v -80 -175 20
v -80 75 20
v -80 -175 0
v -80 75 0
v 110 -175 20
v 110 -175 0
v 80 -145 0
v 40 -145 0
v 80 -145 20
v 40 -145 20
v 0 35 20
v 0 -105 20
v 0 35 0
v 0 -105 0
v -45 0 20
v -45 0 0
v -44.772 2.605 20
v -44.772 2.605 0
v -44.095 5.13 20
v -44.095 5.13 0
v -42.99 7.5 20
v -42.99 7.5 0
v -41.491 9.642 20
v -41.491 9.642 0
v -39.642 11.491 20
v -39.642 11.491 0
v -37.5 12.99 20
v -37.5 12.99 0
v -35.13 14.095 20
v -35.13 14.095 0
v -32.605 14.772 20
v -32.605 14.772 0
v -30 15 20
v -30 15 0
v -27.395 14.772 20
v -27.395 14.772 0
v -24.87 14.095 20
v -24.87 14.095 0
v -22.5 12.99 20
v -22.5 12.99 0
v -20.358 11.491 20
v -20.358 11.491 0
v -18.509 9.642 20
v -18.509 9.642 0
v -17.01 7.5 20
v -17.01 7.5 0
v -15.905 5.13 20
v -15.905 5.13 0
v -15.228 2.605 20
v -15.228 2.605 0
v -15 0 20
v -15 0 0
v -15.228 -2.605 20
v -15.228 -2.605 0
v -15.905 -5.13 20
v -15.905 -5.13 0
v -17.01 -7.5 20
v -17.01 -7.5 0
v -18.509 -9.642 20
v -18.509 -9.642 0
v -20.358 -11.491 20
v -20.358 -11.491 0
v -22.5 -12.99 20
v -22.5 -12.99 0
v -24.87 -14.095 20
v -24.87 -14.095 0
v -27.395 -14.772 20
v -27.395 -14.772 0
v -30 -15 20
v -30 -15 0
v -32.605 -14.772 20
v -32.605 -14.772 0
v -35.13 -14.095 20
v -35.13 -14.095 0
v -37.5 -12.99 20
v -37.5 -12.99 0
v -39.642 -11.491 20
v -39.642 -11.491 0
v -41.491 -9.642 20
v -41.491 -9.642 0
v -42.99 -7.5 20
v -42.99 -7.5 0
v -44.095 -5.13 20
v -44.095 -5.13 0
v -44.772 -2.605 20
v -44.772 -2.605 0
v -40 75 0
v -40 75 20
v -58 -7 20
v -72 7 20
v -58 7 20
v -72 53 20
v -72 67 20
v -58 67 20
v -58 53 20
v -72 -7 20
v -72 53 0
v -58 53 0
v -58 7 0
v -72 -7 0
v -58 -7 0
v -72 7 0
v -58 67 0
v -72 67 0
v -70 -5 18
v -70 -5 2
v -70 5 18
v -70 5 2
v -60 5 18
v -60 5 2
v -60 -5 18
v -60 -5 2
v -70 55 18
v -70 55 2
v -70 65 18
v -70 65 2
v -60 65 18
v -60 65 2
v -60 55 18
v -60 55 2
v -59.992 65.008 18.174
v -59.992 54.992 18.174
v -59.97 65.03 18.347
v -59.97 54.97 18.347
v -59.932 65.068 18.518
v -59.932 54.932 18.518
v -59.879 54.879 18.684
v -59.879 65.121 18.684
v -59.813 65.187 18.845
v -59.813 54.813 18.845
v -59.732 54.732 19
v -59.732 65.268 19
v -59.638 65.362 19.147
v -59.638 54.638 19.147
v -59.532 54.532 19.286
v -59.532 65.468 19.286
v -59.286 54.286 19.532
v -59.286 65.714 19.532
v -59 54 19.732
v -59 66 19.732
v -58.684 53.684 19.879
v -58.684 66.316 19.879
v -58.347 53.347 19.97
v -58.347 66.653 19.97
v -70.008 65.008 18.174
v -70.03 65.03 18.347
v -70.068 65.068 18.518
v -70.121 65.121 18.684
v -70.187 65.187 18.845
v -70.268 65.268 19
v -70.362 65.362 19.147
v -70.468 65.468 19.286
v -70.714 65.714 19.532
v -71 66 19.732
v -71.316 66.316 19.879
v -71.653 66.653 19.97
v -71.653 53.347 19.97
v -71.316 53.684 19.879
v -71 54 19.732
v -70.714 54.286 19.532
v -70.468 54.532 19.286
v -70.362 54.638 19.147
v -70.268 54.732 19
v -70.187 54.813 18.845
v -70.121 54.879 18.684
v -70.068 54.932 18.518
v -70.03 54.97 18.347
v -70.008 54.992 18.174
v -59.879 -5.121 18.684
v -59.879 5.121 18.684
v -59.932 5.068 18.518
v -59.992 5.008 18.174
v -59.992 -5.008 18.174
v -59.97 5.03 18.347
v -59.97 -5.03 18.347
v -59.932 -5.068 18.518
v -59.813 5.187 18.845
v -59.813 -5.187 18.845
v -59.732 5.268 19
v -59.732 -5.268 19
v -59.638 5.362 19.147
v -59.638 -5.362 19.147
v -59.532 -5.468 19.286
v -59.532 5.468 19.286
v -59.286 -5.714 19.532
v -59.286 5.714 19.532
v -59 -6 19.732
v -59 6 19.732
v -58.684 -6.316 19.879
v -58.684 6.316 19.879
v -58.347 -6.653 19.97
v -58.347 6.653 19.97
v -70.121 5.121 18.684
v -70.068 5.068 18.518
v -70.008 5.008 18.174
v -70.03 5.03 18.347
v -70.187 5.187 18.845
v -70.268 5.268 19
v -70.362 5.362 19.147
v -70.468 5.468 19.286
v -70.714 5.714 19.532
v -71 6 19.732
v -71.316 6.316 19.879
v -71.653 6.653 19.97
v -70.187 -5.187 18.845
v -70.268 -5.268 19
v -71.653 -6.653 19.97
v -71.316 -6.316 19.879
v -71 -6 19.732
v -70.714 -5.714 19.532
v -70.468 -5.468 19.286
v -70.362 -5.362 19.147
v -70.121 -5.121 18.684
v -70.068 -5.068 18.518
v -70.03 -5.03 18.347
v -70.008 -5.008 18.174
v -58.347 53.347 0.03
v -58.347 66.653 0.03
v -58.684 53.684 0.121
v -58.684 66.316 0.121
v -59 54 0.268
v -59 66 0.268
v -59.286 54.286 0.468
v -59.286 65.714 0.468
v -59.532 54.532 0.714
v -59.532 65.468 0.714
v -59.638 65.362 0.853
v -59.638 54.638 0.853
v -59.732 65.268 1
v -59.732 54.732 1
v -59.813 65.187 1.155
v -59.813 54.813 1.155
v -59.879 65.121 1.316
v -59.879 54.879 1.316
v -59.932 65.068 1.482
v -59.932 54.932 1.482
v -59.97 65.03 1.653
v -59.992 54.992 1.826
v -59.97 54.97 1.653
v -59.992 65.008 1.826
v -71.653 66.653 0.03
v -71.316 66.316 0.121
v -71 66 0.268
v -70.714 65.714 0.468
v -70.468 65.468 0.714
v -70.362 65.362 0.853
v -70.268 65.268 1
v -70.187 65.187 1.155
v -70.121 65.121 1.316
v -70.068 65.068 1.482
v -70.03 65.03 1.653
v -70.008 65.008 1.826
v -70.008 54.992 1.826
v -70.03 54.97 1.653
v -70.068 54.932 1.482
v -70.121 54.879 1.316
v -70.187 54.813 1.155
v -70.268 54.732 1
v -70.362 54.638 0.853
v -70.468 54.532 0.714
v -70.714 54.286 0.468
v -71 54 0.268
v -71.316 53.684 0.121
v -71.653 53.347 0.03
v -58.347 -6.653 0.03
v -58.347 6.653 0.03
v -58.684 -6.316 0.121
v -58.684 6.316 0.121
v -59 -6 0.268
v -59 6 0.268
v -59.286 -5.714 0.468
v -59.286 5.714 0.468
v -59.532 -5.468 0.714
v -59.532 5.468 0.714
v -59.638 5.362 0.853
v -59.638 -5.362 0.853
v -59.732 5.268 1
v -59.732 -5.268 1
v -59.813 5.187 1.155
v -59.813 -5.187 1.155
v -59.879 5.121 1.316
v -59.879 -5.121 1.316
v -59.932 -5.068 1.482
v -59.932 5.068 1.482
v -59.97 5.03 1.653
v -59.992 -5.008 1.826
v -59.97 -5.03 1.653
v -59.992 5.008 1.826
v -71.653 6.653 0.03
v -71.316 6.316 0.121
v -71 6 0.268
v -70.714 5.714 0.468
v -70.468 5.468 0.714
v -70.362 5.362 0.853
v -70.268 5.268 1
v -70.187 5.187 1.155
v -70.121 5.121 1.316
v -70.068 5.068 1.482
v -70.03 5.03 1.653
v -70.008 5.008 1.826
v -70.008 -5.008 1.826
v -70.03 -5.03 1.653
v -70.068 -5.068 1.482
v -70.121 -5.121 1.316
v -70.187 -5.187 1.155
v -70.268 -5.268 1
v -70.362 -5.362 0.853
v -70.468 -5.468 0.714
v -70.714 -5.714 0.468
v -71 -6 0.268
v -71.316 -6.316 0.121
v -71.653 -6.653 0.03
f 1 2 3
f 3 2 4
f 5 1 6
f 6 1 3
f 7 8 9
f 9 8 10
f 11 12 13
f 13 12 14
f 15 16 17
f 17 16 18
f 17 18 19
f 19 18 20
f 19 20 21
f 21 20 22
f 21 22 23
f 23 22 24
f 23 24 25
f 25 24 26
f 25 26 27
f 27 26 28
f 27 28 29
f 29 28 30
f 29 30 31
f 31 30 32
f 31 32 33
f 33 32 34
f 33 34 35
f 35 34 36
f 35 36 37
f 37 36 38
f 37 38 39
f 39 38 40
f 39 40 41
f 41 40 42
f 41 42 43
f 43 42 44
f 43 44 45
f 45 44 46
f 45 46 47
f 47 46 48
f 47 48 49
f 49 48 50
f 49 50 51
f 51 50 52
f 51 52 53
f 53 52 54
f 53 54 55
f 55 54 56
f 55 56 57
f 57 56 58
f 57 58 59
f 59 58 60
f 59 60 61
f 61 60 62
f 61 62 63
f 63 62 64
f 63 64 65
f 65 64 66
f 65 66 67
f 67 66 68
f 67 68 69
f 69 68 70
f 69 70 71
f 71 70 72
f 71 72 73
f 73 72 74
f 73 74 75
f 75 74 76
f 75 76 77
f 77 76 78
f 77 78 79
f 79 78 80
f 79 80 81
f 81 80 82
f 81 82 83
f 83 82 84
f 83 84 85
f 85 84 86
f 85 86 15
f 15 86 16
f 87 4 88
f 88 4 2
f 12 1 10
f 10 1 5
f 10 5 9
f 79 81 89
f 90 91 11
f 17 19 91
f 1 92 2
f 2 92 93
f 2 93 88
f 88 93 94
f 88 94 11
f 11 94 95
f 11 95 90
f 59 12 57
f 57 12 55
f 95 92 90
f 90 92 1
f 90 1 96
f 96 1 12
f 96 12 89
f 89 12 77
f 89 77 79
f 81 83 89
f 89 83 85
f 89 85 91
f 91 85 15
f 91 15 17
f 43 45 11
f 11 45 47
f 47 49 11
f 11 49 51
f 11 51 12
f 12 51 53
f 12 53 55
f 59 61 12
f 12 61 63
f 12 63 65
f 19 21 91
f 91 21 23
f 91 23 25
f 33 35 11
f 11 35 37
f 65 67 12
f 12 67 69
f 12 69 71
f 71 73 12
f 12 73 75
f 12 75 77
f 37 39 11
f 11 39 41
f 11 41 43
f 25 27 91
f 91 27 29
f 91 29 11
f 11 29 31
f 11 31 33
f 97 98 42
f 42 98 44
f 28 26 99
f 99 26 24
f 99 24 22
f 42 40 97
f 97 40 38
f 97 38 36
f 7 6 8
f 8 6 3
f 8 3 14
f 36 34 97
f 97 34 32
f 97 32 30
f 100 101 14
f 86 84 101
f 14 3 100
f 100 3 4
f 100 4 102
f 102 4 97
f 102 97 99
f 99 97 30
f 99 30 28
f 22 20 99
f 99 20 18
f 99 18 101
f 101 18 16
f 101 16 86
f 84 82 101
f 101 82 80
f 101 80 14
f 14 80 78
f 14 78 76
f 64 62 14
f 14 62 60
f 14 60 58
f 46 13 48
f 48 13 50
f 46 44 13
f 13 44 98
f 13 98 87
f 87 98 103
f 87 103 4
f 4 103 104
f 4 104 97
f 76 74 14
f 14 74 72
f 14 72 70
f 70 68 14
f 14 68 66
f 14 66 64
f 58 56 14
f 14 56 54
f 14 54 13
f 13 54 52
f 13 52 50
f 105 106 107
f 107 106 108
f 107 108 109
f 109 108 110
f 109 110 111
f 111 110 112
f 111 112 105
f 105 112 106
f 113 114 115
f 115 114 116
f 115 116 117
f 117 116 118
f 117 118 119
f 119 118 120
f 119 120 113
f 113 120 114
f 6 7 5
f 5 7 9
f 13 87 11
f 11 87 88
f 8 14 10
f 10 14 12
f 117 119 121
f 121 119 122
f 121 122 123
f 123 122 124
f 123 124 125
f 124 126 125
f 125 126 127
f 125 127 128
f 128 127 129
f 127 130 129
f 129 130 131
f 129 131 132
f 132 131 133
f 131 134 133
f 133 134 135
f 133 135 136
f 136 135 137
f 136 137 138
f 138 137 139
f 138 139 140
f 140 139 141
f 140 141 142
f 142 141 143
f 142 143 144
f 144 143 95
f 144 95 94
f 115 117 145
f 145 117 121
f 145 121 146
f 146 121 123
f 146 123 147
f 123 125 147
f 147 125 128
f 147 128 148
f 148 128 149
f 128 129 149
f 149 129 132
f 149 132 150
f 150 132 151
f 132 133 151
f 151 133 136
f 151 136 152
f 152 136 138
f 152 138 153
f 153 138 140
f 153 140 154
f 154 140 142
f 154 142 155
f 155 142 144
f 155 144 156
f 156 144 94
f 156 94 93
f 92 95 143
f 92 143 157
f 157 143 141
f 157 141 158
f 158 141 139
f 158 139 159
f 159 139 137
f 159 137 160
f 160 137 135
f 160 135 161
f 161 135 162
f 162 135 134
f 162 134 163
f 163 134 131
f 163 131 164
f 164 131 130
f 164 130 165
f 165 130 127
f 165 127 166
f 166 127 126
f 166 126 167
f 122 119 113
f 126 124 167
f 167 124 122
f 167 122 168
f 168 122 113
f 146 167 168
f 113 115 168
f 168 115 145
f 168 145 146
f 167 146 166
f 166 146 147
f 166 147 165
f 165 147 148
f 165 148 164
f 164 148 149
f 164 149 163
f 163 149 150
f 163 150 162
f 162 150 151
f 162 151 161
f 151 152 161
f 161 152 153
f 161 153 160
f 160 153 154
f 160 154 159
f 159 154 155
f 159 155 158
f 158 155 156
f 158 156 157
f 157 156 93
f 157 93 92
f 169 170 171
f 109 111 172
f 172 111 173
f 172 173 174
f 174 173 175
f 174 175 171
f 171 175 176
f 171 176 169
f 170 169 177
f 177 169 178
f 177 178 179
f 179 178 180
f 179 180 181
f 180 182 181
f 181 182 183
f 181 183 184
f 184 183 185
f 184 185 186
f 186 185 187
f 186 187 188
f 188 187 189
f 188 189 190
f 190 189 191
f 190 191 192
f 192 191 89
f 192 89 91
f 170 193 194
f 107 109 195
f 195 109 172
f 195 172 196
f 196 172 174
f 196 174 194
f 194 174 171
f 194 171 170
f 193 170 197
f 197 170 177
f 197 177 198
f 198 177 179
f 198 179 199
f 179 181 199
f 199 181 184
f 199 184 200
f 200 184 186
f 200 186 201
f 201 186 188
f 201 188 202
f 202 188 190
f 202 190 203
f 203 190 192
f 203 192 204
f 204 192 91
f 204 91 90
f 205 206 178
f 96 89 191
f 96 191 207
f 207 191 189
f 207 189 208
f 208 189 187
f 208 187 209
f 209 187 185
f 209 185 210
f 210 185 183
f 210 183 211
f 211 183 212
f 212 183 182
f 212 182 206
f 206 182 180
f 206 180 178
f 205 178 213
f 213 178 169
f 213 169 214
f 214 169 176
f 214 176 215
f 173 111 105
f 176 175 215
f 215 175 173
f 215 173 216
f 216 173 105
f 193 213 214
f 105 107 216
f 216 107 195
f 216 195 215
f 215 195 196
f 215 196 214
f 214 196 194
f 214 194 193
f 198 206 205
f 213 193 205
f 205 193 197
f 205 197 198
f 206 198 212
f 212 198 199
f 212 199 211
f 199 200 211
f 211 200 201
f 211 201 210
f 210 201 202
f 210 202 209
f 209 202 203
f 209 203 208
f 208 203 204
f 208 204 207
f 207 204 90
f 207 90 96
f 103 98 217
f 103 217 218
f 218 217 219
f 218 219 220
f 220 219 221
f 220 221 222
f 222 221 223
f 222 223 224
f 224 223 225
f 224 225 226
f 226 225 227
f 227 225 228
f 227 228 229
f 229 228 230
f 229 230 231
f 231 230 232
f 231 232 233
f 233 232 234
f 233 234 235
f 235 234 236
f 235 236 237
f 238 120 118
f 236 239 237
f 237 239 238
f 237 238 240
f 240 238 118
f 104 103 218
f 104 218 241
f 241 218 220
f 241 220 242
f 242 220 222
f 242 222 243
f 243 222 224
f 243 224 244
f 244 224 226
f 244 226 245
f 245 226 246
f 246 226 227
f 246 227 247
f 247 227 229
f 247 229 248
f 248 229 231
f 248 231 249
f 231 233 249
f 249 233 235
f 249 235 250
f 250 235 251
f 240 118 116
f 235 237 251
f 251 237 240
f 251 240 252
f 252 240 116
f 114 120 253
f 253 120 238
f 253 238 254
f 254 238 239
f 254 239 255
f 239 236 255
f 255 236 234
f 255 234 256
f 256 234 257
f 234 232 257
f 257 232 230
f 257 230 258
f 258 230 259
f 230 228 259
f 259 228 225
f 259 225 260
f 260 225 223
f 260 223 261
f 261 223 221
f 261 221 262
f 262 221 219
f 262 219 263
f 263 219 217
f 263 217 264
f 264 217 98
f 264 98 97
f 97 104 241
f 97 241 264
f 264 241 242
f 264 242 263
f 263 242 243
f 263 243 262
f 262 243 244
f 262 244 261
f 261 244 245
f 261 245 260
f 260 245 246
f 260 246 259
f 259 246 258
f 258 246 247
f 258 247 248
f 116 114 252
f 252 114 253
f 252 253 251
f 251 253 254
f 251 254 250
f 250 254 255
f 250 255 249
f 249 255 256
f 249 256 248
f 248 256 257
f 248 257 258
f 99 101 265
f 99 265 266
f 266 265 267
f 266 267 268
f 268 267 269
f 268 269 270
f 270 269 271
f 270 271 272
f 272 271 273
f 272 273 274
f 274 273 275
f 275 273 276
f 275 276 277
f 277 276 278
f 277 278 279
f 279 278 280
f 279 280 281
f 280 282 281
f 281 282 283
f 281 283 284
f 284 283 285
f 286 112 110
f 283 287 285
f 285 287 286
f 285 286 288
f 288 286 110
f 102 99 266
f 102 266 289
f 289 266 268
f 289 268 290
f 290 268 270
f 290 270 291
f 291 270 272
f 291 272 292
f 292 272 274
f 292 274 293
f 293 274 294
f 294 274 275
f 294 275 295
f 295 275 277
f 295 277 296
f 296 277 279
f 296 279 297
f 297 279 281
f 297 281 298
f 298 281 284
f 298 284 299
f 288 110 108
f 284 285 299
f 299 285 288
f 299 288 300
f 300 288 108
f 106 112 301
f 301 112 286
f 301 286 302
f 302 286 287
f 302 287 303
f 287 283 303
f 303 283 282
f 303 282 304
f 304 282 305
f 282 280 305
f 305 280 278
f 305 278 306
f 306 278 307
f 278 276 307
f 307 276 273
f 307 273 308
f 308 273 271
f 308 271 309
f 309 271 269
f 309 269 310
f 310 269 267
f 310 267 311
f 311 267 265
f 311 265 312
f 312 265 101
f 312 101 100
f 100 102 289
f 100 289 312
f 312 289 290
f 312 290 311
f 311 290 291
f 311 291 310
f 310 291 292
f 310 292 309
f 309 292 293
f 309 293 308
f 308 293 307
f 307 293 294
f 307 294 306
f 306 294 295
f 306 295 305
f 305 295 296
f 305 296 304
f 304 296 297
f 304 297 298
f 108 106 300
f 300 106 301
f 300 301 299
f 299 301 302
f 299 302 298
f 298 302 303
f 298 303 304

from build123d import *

# Parameters (mm, degrees)
SKETCH3_R           = 15
SKETCH3_W           = 80
SKETCH3_H           = 30
BOSS_EXTRUDE2_DEPTH = 20
SKETCH4_W           = 10
SKETCH4_H           = 10
CUT_EXTRUDE1_DEPTH  = 20
CHAMFER1_SIZE       = 40
FILLET1_R           = 2


with BuildPart() as part:
    # Sketch3 → Boss-Extrude2 (new body)
    # profile 1 of 7: a face of its own
    with BuildSketch(Plane.XY):
        Polygon((-80, 75), (-80, 25), (-80, -26.993709631), (-80, -145), (0, -145), (0, 75), align=None)
        with Locations((-30, 0)):
            Circle(SKETCH3_R, mode=Mode.SUBTRACT)
    # profile 2 of 7: a face of its own
    with BuildSketch(Plane.XY):
        Polygon((-80, 75), (-80, 25), (-80, -26.993709631), (-80, -145), (0, -145), (0, 75), align=None)
        with Locations((-30, 0)):
            Circle(SKETCH3_R, mode=Mode.SUBTRACT)
    # profile 3 of 7: a face of its own
    with BuildSketch(Plane.XY):
        Polygon((-80, 75), (-80, 25), (-80, -26.993709631), (-80, -145), (0, -145), (0, 75), align=None)
        with Locations((-30, 0)):
            Circle(SKETCH3_R, mode=Mode.SUBTRACT)
    # profile 4 of 7: a face of its own
    with BuildSketch(Plane.XY):
        with Locations((-40, -160)):
            Rectangle(SKETCH3_W, SKETCH3_H)
    # profile 5 of 7: a face of its own
    with BuildSketch(Plane.XY):
        with Locations((-40, -160)):
            Rectangle(SKETCH3_W, SKETCH3_H)
    # profile 6 of 7: a face of its own
    with BuildSketch(Plane.XY):
        with Locations((-40, -160)):
            Rectangle(SKETCH3_W, SKETCH3_H)
    # profile 7 of 7: a face of its own
    with BuildSketch(Plane.XY):
        Polygon((120, -145), (0, -145), (0, -175), (53.438707699, -175), (120, -175), align=None)
    extrude(amount=BOSS_EXTRUDE2_DEPTH)

    # Sketch4 → Cut-Extrude1 (cut)
    with BuildSketch(Plane.XY.offset(20)):
        with Locations((-65, 60)):
            Rectangle(SKETCH4_W, SKETCH4_H)
        with Locations((-65, 0)):
            Rectangle(SKETCH4_W, SKETCH4_H)
    extrude(amount=-CUT_EXTRUDE1_DEPTH, mode=Mode.SUBTRACT)

    # Chamfer1
    # the kernel refuses this chamfer: 40 mm, written as the material it adds along each edge
    with BuildSketch(Plane(origin=(0, -145, 0), x_dir=(-0.027495876610586535, 0.9996219169112968, 0), z_dir=(0, 0, 1))) as chamfer1_piece_1:
        Polygon((CHAMFER1_SIZE * 0.999621916911, -CHAMFER1_SIZE * 0.0274958766106), (-CHAMFER1_SIZE * 0.0274958766106, -CHAMFER1_SIZE * 0.999621916911), (0, 0), align=None)
    extrude(amount=20)
    # the kernel refuses this chamfer: 40 mm, written as the material it takes off along each edge
    with BuildSketch(Plane(origin=(120, -145, -102.867319519), x_dir=(-0.9996219169112968, 0.027495876610586317, 0), z_dir=(0, 0, 1)), Plane(origin=(0, 75, -102.867319519), x_dir=(-0.9996219169112968, 0.027495876610586317, 0), z_dir=(0, 0, 1))) as chamfer1_2_piece_1:
        Polygon((CHAMFER1_SIZE * 0.999621916911, CHAMFER1_SIZE * 0.0274958766106), (-CHAMFER1_SIZE * 0.0274958766106, CHAMFER1_SIZE * 0.999621916911), (0, 0), align=None)
    extrude(amount=225.734639037, mode=Mode.SUBTRACT)

    # Fillet1
    fillet1_edges = [part.edges().sort_by_distance(p)[0] for p in [
        (-70, 60, 0),
        (-65, 65, 0),
        (-60, 60, 0),
        (-65, 55, 0),
        (-70, 60, 20),
        (-65, 55, 20),
        (-60, 60, 20),
        (-65, 65, 20),
        (-70, 0, 0),
        (-65, 5, 0),
        (-60, 0, 0),
        (-65, -5, 0),
        (-70, 0, 20),
        (-65, -5, 20),
        (-60, 0, 20),
        (-65, 5, 20),
    ]]
    fillet(fillet1_edges, radius=FILLET1_R)


solid = part.part
